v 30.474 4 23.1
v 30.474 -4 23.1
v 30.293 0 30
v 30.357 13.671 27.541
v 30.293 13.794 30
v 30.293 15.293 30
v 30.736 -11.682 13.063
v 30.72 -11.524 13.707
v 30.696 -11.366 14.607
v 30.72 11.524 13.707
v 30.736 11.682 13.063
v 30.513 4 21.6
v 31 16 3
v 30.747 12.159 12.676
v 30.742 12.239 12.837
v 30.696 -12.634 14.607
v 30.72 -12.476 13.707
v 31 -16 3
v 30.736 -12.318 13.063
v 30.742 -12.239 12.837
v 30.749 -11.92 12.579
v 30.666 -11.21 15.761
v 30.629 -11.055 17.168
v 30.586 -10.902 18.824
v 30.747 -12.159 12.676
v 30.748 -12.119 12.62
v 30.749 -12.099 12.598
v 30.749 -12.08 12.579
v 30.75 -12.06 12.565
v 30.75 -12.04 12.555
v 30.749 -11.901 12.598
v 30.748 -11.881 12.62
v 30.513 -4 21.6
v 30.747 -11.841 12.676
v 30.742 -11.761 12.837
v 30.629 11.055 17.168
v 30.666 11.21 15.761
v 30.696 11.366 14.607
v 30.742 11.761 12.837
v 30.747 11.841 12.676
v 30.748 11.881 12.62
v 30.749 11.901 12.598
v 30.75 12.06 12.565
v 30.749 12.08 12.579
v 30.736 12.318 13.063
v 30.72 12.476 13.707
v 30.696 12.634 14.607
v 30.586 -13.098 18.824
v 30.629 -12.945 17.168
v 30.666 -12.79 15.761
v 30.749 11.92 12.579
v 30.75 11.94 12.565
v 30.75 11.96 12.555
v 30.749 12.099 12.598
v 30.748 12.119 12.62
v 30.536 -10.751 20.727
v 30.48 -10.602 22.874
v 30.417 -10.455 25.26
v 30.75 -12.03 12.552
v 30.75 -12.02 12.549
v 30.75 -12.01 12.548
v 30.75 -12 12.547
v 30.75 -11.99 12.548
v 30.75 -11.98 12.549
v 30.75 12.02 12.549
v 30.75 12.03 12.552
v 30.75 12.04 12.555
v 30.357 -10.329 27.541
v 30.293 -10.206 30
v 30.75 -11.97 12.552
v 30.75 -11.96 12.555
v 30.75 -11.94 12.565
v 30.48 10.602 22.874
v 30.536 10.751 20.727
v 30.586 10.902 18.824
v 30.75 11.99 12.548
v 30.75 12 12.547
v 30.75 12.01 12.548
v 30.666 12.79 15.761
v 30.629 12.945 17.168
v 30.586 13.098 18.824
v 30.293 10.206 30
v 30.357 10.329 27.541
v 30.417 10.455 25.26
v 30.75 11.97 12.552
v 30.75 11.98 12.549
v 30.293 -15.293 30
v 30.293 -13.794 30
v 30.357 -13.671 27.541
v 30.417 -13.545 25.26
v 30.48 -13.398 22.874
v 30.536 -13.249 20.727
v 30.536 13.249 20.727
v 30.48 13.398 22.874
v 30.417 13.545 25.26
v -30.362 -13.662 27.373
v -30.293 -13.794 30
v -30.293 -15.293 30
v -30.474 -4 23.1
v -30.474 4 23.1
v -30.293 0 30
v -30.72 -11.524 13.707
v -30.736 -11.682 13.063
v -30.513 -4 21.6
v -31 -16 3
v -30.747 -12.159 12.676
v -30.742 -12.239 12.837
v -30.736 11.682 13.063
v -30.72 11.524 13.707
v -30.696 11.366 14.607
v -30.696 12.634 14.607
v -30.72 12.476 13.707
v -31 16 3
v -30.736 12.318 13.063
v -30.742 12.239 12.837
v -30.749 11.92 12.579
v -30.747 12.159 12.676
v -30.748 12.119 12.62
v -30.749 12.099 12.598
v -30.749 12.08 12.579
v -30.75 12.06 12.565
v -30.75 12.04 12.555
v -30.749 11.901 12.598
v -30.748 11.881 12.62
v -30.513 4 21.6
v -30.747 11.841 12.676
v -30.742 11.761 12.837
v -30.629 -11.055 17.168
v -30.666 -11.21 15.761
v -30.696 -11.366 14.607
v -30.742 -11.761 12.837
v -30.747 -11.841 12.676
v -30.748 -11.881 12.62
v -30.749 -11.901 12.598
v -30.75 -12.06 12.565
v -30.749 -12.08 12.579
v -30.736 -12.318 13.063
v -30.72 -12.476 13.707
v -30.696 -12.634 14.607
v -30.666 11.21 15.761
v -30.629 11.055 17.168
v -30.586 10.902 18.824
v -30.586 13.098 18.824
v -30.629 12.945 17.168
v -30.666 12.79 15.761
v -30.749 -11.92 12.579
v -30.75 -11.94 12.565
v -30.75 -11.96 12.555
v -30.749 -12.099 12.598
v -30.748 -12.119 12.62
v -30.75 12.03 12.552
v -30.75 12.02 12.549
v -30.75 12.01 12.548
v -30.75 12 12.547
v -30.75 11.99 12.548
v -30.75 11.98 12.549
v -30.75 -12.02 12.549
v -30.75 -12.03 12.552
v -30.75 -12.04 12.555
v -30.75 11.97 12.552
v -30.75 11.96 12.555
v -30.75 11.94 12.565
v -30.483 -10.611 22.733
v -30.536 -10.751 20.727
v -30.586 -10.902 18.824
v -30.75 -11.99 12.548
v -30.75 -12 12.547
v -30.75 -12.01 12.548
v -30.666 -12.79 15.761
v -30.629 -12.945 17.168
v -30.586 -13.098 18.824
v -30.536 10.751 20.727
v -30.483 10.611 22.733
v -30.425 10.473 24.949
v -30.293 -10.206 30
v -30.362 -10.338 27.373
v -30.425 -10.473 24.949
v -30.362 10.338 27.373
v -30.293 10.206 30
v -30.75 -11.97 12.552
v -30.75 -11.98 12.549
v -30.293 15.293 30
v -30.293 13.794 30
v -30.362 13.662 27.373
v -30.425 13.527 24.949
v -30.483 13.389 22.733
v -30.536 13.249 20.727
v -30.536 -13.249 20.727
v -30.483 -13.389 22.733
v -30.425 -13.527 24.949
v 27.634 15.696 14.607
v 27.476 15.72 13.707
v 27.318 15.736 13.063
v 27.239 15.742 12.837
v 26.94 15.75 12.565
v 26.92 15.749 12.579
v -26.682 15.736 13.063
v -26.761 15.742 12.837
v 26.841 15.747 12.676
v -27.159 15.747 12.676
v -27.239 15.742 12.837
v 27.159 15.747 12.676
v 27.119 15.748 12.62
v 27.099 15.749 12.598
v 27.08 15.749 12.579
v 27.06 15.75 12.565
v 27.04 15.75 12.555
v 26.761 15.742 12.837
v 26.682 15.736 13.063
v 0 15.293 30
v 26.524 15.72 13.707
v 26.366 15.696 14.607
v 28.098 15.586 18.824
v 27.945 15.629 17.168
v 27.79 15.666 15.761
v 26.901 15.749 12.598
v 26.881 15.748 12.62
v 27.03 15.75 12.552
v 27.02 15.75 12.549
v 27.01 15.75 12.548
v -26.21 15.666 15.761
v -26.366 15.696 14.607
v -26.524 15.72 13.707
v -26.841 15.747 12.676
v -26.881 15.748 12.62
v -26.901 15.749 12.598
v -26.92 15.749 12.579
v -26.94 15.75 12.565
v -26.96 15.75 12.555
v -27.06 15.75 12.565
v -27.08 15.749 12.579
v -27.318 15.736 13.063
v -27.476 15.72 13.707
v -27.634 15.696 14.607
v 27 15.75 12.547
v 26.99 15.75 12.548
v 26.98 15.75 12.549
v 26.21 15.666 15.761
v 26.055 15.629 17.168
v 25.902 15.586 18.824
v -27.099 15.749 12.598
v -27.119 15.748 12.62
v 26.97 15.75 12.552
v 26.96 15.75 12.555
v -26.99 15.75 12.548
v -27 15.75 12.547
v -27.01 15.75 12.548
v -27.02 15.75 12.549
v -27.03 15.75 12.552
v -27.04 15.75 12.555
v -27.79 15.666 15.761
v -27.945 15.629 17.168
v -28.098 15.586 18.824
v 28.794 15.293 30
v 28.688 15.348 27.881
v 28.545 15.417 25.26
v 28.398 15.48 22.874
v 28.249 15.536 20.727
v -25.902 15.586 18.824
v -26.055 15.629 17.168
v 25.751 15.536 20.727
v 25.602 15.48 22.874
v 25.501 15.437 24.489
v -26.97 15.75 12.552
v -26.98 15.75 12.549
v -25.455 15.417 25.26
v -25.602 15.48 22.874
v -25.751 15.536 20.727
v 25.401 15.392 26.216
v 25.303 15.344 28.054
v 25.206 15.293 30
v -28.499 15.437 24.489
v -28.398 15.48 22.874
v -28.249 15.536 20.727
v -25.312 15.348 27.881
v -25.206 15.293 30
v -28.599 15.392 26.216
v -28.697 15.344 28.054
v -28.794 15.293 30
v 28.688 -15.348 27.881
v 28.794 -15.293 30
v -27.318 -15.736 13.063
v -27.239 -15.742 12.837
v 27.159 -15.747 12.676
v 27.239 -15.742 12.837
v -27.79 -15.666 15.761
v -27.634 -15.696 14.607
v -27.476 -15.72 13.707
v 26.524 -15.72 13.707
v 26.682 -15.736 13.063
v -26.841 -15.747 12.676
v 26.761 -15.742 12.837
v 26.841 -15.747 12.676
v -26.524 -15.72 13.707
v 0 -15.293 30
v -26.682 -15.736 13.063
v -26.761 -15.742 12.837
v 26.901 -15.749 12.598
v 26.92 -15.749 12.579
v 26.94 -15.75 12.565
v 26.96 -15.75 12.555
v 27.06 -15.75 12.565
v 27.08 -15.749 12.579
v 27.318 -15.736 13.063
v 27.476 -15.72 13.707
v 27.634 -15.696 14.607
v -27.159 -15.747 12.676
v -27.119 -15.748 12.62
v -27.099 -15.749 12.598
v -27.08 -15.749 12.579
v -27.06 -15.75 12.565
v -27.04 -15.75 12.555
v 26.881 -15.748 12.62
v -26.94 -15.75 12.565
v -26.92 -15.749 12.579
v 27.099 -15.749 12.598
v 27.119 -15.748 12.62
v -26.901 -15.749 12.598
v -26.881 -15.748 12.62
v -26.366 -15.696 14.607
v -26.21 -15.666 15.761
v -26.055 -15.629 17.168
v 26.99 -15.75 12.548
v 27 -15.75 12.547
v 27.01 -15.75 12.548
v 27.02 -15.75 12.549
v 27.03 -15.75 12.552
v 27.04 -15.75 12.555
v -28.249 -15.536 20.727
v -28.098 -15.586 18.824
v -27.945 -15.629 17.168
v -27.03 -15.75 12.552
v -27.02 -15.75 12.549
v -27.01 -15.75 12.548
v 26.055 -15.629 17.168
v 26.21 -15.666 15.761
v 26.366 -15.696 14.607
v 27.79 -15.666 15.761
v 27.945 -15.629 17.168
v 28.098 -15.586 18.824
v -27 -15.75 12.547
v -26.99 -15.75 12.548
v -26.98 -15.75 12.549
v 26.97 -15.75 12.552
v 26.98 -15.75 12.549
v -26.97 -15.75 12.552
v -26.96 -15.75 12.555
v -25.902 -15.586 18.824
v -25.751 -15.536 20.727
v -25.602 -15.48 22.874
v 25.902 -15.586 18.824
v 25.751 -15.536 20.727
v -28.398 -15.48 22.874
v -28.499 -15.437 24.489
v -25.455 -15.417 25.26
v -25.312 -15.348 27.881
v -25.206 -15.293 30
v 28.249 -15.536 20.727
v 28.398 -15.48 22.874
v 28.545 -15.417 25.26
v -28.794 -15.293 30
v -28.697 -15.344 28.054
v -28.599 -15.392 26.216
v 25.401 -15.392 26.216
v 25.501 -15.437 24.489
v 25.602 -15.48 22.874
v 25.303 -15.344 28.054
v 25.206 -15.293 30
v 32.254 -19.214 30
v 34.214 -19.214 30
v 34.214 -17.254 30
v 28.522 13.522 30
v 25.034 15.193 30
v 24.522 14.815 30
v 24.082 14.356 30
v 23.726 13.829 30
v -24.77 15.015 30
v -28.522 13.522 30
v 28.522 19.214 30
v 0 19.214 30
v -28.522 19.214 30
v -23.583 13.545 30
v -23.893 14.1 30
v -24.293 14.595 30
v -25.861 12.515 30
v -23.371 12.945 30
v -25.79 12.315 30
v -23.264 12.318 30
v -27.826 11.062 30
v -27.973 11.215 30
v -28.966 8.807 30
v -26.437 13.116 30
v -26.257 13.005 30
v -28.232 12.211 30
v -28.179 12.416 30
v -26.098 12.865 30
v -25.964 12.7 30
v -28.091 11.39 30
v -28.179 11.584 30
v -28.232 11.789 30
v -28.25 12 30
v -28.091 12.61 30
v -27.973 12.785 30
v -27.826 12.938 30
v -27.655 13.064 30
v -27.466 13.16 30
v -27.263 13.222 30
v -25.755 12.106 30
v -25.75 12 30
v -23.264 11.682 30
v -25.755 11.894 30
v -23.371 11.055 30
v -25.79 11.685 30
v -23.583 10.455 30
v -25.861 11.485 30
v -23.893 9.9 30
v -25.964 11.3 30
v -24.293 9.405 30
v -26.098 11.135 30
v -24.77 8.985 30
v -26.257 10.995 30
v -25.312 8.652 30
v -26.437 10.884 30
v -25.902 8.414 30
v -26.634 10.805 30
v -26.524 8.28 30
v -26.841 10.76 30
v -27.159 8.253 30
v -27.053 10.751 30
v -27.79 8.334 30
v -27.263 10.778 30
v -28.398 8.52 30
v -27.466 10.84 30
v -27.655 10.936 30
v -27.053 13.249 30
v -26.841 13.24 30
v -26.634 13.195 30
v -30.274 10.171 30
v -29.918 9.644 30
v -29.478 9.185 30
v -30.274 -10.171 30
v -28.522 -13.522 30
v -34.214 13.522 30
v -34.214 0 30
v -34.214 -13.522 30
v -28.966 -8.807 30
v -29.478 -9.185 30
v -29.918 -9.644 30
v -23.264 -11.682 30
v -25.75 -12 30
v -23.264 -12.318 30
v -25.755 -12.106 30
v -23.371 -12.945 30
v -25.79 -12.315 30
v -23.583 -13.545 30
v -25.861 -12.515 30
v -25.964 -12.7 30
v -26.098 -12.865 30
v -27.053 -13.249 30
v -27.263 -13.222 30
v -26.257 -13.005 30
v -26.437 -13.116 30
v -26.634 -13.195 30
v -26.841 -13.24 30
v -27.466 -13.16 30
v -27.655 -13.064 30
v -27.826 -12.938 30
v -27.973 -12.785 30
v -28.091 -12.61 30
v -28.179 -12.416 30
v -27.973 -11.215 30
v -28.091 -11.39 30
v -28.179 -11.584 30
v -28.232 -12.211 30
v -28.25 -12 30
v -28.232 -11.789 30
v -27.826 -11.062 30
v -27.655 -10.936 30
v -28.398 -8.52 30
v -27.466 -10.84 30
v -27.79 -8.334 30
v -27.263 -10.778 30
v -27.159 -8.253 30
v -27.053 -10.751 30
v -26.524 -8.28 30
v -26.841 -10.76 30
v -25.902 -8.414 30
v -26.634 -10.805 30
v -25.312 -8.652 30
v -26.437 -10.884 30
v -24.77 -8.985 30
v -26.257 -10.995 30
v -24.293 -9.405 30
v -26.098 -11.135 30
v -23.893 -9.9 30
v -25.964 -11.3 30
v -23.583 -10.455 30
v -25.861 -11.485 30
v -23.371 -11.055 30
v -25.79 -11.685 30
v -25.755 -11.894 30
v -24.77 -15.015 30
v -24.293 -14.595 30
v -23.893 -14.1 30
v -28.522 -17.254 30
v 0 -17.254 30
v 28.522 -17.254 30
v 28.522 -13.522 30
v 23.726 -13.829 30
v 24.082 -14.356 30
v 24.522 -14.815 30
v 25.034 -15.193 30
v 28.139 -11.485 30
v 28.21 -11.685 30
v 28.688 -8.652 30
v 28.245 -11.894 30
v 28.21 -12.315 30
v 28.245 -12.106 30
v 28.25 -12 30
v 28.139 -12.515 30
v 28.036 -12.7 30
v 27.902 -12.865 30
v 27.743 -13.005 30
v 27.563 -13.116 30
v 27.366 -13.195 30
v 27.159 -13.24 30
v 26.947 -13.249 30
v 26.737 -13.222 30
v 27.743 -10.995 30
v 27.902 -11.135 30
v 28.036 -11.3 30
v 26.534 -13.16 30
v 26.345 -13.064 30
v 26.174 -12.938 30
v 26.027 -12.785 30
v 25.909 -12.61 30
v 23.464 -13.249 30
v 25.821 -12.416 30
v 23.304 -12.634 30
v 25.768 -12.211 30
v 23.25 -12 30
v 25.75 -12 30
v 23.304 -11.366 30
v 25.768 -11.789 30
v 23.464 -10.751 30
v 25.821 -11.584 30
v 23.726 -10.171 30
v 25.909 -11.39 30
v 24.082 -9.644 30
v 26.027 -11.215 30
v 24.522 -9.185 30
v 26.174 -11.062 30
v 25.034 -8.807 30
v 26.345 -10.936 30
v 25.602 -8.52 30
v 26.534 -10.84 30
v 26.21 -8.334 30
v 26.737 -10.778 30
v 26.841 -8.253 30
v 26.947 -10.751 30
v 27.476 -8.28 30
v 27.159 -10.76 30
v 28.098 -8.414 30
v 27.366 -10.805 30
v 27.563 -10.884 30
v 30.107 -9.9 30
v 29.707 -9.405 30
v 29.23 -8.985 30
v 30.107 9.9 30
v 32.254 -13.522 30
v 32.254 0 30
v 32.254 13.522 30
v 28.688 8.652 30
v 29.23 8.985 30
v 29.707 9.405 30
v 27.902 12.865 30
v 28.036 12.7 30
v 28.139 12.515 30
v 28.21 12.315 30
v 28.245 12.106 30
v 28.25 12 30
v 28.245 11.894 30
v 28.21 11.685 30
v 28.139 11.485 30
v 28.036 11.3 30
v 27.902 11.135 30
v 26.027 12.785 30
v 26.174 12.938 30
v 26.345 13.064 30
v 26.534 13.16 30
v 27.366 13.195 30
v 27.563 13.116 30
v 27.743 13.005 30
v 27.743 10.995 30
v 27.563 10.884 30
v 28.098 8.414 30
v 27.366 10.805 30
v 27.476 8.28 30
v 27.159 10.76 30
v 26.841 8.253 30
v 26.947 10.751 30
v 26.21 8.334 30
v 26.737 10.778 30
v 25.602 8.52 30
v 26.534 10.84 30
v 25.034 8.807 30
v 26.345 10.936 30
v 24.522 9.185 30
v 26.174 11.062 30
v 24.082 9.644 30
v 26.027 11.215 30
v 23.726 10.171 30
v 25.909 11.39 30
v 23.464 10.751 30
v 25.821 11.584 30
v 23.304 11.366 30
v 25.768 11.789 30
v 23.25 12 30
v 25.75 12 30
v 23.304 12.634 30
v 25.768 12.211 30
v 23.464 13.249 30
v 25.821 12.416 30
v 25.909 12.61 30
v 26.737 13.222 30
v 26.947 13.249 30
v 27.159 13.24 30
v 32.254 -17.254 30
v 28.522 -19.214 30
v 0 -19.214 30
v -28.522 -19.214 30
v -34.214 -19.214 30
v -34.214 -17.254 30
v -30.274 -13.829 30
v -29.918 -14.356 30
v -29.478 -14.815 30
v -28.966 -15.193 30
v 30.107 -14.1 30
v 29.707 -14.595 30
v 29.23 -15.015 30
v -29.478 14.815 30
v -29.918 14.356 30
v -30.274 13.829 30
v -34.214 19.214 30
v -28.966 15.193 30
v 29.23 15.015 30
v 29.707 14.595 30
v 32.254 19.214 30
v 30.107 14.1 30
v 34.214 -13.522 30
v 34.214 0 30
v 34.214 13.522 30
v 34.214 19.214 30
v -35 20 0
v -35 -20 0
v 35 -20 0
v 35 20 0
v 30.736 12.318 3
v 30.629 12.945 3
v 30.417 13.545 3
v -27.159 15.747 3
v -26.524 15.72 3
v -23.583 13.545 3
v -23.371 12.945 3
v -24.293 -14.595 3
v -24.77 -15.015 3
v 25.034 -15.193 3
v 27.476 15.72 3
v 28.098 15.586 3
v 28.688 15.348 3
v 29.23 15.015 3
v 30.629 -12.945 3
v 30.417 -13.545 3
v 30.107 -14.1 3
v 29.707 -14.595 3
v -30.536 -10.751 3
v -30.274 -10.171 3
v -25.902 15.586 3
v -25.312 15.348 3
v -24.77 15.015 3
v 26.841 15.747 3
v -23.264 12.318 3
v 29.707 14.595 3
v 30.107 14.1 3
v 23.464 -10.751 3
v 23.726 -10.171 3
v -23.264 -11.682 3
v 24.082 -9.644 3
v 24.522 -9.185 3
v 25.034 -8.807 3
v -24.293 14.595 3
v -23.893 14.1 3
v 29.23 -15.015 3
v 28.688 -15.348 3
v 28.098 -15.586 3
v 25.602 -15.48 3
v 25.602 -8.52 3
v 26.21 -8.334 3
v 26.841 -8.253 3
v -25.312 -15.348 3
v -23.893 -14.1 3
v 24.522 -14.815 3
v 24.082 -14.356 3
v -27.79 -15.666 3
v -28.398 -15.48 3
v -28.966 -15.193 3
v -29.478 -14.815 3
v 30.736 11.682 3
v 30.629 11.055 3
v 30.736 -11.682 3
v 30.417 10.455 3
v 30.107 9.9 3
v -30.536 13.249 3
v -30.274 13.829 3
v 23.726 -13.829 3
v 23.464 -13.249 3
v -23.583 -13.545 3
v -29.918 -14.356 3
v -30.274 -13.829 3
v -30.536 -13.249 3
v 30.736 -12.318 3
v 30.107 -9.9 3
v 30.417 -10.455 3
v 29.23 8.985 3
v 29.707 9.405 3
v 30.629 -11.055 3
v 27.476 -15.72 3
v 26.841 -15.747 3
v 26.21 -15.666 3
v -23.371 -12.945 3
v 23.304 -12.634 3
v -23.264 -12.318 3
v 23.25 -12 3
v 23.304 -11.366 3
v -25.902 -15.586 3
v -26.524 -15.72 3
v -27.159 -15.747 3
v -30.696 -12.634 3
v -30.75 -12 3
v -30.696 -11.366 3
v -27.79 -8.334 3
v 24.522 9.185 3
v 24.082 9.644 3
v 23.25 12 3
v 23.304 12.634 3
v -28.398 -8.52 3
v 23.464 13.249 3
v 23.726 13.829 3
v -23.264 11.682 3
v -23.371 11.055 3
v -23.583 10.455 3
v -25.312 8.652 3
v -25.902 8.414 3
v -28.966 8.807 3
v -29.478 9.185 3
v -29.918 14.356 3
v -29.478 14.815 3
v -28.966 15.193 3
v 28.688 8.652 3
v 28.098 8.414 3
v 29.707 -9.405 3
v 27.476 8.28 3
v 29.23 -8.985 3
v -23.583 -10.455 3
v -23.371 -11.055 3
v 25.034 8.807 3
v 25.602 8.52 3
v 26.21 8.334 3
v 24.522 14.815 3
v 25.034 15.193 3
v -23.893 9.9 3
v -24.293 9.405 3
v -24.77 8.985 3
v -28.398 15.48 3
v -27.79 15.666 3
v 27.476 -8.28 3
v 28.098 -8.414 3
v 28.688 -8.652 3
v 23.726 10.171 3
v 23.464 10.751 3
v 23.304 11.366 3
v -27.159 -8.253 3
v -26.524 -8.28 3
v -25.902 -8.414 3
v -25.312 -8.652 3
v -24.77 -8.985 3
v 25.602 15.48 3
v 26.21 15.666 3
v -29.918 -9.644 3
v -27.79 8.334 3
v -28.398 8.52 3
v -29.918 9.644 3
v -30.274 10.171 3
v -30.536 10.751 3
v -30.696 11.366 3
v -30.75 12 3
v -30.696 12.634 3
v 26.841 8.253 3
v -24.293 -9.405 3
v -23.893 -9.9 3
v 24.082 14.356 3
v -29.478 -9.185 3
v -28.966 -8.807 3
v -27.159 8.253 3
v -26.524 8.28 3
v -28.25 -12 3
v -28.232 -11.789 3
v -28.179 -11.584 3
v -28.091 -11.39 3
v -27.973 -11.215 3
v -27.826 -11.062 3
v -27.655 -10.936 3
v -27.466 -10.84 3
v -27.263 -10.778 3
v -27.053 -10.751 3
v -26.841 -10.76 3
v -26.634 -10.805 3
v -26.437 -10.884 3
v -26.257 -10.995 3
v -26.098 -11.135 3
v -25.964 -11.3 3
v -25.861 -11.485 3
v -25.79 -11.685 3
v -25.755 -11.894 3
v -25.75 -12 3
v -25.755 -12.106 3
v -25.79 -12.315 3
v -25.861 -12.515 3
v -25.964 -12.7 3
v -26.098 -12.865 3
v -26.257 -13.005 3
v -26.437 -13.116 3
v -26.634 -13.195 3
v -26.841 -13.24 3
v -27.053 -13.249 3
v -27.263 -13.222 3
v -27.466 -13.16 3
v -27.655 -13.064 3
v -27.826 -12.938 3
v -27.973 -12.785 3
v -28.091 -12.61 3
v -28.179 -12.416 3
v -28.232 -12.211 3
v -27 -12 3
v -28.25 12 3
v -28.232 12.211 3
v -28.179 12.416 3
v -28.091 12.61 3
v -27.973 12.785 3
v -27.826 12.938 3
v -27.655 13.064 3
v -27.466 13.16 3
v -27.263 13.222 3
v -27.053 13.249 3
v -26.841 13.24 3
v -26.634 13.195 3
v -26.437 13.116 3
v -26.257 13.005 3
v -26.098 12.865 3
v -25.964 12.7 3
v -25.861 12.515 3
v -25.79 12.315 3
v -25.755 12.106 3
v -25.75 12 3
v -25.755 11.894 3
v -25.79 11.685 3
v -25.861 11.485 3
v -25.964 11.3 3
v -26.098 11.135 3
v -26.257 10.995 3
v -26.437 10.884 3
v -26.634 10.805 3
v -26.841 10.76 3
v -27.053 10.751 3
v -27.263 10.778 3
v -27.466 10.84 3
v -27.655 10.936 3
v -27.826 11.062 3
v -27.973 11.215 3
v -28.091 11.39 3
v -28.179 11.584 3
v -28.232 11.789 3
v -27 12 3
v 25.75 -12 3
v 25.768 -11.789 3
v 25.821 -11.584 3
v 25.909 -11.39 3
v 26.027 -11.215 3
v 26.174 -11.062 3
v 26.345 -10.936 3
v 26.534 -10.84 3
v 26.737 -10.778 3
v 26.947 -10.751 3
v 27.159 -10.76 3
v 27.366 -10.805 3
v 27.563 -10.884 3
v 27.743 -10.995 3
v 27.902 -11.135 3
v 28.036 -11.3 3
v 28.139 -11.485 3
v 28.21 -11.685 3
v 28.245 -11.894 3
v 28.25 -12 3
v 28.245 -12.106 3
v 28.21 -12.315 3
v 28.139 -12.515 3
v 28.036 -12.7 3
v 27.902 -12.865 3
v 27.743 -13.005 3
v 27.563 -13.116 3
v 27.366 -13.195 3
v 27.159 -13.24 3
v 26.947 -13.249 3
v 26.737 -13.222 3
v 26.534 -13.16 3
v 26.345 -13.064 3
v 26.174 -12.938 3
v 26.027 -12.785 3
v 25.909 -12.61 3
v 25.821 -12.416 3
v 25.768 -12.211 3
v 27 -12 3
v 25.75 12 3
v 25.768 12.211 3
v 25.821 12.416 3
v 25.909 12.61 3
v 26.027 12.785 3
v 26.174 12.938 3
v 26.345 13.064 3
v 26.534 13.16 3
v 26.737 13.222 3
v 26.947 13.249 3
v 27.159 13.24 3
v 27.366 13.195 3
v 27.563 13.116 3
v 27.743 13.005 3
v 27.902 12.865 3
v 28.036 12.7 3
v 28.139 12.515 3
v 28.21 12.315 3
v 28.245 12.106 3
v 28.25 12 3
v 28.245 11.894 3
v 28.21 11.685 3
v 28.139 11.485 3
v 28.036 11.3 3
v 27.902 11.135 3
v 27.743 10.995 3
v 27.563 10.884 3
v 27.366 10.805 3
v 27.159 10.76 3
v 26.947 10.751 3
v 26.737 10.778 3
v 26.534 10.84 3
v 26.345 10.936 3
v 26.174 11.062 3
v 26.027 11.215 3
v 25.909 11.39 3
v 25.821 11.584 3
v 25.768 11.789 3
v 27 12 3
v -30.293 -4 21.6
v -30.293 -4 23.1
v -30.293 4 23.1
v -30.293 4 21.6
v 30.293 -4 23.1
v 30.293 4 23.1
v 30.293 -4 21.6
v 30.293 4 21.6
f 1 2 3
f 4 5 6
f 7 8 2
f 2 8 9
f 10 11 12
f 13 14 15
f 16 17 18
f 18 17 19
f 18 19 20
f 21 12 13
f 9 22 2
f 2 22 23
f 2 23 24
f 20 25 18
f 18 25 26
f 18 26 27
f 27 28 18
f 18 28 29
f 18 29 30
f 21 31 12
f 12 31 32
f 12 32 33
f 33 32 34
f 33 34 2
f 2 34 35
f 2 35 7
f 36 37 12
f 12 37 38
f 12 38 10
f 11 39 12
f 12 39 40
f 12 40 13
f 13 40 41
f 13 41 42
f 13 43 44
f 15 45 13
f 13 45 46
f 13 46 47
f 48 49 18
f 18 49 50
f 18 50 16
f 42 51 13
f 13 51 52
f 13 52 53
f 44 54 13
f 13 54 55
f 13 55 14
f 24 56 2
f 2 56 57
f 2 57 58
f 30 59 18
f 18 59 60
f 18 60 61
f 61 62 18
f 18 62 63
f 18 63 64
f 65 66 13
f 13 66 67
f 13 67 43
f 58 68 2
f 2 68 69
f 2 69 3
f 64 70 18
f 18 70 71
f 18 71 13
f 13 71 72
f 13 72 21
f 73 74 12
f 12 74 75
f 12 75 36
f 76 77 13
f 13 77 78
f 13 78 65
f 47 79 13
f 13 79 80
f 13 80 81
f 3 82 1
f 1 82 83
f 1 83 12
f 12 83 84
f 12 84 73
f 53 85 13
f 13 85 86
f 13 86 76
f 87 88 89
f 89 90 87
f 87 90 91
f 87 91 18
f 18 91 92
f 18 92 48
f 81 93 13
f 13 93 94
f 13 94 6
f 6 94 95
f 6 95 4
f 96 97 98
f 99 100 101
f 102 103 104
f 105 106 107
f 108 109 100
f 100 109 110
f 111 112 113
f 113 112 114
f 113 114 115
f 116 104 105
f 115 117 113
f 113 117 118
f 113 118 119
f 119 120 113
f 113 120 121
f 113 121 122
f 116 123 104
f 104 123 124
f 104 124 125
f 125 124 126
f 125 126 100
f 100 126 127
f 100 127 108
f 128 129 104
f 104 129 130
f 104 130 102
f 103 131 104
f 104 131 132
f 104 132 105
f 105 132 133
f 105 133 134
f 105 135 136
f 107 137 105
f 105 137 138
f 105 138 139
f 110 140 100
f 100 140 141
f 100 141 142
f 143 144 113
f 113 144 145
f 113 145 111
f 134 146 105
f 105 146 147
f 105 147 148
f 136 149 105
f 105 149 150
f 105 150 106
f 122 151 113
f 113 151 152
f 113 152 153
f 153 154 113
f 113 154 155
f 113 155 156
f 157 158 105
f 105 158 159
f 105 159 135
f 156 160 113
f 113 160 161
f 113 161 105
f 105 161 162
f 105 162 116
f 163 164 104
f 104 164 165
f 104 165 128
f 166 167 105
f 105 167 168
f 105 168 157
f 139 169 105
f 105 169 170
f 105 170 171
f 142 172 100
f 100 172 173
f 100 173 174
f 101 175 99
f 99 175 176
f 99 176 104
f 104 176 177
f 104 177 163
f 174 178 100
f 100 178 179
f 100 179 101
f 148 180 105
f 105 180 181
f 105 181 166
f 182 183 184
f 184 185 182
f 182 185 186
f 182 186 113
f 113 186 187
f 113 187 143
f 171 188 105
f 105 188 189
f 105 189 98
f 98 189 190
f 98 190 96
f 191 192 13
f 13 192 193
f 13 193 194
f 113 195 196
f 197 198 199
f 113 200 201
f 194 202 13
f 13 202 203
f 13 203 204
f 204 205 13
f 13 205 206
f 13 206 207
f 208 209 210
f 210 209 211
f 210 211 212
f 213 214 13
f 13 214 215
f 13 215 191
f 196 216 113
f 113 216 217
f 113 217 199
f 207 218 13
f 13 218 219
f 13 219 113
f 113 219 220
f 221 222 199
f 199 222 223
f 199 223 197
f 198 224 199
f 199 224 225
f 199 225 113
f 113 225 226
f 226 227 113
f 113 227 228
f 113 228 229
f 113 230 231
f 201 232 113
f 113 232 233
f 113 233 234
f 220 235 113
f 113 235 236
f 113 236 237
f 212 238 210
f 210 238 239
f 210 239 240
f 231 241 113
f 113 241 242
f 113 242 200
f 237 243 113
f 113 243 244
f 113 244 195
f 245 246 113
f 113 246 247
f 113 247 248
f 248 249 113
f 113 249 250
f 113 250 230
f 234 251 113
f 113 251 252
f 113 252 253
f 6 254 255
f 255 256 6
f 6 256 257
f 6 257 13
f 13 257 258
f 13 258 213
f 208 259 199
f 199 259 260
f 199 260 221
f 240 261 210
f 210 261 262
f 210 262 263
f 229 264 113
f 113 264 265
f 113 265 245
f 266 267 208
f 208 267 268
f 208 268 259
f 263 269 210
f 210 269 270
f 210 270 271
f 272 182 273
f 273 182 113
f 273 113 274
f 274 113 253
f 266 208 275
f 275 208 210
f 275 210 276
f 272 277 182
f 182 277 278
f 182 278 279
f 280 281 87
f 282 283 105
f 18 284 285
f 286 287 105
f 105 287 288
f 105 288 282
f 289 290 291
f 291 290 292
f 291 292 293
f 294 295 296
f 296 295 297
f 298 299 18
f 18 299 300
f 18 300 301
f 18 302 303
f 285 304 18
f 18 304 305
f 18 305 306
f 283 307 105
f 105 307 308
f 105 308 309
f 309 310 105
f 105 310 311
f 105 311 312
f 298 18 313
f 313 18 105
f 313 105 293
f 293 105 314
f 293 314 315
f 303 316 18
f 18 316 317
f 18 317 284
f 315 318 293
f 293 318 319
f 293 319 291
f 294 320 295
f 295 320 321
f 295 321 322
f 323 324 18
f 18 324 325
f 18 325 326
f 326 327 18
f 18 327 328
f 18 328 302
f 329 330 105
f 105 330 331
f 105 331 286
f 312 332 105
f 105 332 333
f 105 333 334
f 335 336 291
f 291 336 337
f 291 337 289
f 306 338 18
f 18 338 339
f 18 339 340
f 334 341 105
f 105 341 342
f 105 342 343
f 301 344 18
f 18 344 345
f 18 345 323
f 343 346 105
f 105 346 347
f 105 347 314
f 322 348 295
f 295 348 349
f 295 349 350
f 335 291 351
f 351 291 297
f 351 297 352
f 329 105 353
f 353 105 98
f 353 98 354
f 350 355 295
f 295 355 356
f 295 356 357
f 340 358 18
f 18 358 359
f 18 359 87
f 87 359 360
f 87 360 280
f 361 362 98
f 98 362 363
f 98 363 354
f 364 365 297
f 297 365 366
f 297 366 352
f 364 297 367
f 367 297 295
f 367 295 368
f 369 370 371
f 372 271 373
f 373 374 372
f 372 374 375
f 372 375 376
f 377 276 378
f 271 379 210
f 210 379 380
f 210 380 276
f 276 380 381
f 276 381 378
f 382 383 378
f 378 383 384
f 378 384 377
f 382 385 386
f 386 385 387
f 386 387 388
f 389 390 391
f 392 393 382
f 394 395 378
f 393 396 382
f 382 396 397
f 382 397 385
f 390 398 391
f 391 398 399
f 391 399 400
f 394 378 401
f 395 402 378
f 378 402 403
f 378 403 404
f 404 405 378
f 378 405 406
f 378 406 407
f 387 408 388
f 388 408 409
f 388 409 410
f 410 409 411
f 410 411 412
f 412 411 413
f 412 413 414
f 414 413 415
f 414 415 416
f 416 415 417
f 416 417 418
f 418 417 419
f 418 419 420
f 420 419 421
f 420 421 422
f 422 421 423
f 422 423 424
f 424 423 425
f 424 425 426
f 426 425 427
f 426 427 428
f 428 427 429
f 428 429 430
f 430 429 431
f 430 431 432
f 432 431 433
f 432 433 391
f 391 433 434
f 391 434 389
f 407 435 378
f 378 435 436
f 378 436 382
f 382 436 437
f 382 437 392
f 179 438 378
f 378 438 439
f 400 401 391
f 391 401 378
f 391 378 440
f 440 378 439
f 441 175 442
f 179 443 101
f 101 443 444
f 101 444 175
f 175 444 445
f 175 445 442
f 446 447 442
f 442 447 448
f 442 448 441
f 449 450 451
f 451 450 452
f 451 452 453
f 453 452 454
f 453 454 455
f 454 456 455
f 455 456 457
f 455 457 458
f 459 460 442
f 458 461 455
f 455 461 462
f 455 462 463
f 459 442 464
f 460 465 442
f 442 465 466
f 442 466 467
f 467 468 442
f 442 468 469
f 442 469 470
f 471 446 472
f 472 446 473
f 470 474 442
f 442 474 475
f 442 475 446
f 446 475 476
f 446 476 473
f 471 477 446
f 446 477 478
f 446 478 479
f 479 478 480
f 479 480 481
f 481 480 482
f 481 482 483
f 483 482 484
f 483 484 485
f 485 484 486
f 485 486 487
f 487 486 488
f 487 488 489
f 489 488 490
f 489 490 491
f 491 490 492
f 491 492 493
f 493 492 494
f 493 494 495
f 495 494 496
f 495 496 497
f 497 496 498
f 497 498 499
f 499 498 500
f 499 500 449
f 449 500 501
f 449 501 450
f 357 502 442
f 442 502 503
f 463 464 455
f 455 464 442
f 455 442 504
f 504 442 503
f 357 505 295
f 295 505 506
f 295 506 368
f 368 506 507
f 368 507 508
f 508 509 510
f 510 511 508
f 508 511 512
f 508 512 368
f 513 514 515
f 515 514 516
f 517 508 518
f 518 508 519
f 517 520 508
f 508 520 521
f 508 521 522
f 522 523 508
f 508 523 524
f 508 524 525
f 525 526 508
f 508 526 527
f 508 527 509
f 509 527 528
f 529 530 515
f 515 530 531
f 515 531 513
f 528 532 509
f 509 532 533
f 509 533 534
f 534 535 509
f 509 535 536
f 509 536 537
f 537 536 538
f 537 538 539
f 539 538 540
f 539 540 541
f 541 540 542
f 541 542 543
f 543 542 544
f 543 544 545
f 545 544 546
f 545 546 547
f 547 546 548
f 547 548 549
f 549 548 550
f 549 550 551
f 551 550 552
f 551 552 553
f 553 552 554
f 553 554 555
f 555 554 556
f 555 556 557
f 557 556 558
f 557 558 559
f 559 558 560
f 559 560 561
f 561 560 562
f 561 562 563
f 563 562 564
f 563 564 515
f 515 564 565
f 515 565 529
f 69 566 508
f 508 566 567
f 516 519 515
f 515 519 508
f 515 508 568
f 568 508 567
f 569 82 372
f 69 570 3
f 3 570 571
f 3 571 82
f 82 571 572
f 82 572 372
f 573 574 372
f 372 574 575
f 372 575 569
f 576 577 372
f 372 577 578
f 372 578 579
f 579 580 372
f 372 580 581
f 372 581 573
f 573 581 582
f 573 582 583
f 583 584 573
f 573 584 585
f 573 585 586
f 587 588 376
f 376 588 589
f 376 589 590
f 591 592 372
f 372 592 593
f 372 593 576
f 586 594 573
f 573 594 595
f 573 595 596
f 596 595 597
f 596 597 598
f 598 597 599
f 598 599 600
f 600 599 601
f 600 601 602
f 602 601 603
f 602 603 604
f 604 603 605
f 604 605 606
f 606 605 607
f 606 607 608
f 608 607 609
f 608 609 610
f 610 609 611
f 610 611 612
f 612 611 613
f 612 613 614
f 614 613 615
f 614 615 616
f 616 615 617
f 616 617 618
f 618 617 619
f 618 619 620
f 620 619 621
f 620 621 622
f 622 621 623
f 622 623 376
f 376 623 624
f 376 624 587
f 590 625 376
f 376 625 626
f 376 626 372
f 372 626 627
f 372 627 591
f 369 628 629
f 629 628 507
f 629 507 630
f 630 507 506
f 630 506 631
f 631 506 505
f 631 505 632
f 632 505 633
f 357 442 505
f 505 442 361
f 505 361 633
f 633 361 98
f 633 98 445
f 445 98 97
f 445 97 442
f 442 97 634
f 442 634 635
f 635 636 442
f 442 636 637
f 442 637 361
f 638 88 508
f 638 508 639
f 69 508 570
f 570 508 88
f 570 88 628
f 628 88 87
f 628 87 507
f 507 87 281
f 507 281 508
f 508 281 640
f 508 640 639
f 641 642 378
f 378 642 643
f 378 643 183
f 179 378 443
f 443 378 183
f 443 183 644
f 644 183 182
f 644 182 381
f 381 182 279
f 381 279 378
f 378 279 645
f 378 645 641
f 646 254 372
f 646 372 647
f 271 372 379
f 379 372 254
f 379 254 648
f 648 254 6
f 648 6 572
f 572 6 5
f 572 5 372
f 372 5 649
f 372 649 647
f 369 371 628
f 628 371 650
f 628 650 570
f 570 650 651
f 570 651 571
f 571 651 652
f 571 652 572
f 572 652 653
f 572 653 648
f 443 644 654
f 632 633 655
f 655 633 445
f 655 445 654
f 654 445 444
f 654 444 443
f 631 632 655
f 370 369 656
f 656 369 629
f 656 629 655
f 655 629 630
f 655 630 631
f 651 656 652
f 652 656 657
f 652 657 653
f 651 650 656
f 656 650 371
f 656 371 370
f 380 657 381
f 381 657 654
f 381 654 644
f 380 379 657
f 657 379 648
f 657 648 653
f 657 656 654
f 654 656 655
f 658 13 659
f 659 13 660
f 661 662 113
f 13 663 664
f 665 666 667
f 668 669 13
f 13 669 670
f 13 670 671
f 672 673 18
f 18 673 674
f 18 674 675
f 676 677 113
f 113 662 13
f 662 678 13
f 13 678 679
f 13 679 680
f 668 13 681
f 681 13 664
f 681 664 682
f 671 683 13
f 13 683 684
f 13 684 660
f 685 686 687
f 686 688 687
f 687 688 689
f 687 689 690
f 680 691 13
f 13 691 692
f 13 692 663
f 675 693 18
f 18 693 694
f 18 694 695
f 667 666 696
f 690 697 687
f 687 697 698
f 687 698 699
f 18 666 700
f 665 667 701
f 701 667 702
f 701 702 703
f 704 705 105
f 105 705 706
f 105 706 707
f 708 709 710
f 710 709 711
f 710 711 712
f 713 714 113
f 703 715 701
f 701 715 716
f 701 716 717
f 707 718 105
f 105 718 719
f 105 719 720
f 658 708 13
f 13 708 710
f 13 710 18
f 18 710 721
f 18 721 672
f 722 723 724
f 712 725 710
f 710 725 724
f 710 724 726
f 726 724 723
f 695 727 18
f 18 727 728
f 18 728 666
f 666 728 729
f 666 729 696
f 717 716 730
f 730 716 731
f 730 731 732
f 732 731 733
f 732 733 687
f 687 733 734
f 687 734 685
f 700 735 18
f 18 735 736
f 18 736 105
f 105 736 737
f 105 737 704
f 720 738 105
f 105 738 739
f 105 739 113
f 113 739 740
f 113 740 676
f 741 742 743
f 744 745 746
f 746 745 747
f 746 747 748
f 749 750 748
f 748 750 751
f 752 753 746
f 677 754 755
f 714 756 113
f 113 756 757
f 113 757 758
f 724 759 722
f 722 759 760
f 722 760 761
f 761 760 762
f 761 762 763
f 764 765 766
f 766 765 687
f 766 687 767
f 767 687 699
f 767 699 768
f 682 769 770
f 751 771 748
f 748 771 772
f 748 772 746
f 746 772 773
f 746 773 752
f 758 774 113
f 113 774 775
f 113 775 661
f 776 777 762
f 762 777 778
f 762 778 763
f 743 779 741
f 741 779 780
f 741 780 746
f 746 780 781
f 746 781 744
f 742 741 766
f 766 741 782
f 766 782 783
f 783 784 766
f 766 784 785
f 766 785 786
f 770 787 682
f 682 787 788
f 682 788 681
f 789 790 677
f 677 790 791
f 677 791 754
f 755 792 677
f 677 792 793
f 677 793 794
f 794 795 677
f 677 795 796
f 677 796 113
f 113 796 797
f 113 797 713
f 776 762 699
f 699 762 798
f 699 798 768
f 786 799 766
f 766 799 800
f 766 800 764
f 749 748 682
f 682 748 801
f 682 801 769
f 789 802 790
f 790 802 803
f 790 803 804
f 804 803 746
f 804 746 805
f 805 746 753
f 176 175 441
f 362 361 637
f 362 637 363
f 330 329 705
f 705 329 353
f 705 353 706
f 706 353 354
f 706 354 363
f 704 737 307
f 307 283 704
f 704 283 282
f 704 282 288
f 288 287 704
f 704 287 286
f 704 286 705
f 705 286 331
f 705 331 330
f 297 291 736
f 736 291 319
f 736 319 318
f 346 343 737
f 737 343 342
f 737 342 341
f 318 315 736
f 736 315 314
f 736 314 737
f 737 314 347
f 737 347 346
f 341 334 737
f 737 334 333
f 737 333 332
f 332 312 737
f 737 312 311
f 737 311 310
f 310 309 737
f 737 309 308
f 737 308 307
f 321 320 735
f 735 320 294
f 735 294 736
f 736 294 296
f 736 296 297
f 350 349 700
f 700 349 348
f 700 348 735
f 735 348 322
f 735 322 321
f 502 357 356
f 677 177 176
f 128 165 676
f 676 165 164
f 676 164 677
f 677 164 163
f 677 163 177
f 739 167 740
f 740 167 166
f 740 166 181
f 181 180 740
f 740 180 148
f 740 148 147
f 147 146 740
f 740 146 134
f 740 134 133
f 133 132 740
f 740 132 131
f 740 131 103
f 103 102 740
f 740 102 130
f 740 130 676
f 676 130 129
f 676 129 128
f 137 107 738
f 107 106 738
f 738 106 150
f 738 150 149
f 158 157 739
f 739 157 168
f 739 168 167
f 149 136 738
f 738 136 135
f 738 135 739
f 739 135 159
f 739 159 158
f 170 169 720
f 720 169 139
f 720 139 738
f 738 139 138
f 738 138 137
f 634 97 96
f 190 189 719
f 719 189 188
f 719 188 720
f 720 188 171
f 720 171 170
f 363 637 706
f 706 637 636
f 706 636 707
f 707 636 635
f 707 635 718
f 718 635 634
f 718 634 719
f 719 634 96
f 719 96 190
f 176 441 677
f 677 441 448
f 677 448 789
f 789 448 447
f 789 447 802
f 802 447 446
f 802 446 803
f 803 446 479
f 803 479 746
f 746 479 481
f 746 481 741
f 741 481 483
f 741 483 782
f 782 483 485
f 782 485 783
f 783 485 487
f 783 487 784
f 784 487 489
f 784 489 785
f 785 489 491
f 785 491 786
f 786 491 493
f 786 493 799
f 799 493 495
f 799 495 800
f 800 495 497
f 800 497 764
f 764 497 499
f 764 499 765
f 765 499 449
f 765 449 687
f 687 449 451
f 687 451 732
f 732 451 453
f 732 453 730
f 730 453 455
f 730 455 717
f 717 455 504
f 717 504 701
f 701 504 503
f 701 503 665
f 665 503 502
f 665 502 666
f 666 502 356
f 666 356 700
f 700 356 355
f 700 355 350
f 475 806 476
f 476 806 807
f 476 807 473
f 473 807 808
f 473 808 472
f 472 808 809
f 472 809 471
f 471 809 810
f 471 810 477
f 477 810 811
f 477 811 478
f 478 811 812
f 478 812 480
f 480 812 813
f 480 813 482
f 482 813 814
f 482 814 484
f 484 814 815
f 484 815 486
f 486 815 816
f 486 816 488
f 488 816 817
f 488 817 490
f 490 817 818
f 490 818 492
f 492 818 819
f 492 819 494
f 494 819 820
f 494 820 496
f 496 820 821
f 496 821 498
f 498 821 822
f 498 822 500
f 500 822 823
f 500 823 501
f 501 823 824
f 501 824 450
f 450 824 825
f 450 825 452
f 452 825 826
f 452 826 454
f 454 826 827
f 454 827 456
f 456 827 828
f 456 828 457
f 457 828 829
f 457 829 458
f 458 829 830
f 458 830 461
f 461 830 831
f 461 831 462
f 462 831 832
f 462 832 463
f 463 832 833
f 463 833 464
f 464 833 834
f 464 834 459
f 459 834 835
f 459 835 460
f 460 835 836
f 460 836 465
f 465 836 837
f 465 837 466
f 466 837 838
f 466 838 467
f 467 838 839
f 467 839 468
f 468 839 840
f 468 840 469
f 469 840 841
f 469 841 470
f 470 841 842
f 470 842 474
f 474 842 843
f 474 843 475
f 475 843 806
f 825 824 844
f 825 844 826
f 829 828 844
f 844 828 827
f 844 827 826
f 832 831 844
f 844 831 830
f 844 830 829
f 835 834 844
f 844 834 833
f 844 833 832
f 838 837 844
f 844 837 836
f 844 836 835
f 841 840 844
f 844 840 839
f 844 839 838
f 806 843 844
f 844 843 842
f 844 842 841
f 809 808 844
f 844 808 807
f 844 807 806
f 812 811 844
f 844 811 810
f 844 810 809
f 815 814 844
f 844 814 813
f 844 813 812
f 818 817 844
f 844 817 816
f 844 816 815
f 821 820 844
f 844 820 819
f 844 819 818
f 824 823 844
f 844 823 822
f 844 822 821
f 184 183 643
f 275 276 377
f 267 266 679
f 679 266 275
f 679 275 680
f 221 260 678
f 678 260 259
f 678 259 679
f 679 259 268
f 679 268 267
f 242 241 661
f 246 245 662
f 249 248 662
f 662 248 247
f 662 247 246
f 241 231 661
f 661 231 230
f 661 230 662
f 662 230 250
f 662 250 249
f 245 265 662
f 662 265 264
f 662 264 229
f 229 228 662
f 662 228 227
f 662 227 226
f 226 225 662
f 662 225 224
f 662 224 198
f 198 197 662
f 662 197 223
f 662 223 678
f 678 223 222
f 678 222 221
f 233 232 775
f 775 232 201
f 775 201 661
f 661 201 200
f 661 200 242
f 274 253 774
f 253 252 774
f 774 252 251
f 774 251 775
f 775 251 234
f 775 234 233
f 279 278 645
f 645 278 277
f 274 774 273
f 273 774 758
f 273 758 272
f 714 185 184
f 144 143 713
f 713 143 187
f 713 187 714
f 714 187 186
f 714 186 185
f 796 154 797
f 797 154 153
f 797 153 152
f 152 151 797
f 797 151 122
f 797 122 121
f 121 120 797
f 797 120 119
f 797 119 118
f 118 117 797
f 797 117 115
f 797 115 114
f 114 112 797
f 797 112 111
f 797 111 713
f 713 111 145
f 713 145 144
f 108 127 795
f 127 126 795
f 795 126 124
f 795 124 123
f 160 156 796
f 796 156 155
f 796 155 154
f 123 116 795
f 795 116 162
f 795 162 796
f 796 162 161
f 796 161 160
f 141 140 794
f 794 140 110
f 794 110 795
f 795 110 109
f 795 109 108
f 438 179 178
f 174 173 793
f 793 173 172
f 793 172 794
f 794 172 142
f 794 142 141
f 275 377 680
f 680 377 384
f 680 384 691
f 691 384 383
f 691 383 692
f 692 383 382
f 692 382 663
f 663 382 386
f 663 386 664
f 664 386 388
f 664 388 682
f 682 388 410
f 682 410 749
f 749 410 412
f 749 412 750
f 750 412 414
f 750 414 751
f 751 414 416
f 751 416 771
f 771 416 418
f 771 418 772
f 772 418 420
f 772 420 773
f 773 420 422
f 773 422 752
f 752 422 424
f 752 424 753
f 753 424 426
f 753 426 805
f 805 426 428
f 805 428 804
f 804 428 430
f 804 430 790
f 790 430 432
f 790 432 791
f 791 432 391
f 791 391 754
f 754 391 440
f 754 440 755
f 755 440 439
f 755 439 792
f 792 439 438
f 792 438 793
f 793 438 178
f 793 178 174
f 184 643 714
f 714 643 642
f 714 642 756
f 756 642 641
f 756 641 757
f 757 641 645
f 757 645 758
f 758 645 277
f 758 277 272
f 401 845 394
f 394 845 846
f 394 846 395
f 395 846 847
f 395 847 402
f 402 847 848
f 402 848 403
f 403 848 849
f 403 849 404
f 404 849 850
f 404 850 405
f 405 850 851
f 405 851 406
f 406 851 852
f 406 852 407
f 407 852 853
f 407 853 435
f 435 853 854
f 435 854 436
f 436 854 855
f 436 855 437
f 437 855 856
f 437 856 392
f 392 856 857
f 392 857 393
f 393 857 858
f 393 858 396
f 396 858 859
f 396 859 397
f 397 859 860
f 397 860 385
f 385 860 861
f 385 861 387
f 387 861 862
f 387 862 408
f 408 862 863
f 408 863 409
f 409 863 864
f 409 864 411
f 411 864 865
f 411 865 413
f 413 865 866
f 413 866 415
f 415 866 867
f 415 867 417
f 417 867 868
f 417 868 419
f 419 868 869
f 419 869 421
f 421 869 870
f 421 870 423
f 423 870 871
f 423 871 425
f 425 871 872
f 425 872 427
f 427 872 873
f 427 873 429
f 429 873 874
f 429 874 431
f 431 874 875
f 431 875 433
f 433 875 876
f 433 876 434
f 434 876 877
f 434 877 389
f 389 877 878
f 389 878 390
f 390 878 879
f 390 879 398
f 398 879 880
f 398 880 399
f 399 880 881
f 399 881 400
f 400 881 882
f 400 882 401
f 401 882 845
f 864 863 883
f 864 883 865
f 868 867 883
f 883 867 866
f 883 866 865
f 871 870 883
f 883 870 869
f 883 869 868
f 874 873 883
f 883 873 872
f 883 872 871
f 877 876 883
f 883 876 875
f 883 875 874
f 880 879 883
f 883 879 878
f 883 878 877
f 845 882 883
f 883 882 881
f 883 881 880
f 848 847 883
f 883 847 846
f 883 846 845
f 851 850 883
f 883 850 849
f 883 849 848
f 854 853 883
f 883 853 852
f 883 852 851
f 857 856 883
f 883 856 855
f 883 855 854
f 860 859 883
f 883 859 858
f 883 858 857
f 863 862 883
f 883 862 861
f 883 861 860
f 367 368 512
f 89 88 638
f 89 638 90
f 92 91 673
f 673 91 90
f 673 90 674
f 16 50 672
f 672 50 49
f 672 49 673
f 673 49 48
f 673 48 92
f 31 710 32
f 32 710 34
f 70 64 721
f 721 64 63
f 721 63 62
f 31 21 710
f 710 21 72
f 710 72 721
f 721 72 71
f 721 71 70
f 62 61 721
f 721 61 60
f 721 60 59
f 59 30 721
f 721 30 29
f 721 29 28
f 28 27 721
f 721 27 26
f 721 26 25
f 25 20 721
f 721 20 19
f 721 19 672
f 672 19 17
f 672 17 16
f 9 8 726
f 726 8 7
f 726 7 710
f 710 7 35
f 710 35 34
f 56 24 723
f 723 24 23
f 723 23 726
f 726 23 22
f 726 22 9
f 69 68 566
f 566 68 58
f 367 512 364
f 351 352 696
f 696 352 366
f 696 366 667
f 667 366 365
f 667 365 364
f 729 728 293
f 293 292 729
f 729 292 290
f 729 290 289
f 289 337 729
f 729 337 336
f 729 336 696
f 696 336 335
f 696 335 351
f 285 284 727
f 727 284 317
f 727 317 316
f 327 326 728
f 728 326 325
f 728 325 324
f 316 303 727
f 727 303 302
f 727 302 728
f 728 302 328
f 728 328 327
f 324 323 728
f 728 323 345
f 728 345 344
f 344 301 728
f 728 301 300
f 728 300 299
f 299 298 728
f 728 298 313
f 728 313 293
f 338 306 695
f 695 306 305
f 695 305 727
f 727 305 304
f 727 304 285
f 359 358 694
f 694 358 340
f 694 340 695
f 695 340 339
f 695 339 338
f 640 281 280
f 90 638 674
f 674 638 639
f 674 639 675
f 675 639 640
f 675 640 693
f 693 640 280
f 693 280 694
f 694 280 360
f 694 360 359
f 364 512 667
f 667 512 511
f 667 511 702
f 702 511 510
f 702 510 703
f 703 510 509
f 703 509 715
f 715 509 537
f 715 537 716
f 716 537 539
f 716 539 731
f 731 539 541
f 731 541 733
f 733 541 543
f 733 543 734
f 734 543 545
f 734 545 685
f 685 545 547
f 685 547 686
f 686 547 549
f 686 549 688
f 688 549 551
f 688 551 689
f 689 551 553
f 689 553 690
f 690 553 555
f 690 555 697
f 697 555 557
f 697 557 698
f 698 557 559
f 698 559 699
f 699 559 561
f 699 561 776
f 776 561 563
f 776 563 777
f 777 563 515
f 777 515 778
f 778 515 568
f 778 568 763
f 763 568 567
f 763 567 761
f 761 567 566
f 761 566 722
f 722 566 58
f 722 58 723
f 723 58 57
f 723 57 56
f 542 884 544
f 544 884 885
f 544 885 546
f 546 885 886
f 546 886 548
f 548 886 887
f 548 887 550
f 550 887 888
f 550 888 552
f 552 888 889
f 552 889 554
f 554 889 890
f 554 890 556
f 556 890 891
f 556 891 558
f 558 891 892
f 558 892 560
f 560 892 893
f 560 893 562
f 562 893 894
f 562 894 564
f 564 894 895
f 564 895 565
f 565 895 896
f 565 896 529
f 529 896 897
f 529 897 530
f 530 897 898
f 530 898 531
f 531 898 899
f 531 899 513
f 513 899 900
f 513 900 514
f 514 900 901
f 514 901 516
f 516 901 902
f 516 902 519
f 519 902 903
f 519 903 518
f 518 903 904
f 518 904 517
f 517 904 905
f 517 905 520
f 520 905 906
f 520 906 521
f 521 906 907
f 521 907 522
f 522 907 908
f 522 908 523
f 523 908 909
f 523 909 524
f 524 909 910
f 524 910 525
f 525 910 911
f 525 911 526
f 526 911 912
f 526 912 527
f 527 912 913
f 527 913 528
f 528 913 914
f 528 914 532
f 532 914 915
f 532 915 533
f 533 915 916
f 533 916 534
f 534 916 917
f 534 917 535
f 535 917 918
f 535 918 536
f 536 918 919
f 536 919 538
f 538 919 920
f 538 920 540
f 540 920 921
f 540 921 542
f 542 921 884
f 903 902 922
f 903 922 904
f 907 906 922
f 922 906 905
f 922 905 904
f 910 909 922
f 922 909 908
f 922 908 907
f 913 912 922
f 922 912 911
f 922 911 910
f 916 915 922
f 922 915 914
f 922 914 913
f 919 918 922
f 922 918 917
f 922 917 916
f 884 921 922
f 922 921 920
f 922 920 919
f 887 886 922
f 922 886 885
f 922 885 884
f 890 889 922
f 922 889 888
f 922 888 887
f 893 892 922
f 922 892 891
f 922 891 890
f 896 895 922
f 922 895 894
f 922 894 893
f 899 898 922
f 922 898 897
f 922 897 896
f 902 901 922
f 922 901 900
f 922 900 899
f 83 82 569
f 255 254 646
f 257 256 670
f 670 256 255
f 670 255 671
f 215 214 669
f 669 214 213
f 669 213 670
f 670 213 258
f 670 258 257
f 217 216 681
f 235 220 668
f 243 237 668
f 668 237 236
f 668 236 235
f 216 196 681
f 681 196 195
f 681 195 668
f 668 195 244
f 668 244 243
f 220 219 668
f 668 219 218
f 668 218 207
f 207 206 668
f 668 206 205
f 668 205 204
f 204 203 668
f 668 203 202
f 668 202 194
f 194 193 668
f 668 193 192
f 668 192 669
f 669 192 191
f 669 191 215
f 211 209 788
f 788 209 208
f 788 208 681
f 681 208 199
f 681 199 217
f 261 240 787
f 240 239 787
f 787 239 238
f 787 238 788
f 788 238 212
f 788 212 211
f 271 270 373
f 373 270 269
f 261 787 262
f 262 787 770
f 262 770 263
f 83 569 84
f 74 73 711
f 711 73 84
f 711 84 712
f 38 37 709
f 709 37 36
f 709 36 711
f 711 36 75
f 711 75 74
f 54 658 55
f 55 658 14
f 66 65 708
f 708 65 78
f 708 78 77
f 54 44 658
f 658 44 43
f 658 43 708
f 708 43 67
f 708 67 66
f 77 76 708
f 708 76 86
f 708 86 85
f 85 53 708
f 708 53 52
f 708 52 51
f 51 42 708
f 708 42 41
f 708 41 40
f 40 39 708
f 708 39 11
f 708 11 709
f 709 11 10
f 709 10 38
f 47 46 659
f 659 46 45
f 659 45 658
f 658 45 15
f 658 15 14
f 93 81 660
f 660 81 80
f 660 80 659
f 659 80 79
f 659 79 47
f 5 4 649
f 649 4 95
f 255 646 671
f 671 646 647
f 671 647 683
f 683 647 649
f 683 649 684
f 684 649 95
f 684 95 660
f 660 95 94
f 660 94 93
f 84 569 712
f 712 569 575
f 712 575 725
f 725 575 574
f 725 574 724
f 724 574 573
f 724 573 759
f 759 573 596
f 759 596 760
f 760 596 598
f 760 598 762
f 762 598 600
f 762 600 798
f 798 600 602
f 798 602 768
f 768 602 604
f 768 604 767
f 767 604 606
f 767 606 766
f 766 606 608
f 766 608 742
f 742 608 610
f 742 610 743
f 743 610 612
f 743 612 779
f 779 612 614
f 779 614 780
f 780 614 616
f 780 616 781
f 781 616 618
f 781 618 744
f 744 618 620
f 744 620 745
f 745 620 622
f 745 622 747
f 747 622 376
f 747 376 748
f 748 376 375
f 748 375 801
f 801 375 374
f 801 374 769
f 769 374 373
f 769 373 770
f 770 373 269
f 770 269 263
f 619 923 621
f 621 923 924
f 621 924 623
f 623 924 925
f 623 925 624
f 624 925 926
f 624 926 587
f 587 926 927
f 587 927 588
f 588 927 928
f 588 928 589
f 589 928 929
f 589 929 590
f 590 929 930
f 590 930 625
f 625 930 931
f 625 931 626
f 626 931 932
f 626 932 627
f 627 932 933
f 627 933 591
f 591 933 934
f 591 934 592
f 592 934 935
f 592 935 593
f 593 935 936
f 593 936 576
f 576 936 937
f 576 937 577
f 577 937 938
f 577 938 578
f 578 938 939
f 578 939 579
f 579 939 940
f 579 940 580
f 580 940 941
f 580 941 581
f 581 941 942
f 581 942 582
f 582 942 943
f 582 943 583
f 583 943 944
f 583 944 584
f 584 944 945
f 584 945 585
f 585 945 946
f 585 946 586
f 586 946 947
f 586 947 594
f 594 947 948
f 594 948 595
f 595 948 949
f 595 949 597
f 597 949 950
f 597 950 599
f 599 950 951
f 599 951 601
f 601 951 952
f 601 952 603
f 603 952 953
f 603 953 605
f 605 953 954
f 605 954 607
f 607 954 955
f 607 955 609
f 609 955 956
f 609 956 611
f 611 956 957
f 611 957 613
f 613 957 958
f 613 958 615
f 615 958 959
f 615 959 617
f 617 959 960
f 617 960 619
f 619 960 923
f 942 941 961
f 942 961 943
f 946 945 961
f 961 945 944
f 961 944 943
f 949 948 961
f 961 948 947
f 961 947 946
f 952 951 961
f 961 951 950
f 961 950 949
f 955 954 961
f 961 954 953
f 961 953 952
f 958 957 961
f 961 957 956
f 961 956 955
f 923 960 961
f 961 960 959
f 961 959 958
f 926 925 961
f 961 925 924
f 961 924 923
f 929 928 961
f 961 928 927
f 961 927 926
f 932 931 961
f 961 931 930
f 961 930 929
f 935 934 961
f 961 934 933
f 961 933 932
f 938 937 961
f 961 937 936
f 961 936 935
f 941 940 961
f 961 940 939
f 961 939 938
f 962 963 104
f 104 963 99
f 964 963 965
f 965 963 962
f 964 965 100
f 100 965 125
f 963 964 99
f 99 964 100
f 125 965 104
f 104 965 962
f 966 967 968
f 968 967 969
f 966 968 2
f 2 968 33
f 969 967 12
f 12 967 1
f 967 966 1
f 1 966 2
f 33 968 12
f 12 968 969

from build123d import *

# Parameters (mm, degrees)
SKETCH2_W                 = 70
SKETCH2_H                 = 40
DRAFTED_OUTER_SHELL_DEPTH = 30
DRAFTED_OUTER_SHELL_TAPER = 1.5
DRAFTED_CAVITY_START      = 3
SKETCH3_W                 = 62
SKETCH3_H                 = 32
DRAFTED_CAVITY_DEPTH      = 27
DRAFTED_CAVITY_TAPER      = 1.5
SCREW_BOSS_START          = 3
SKETCH4_R                 = 3.75
SCREW_BOSS_DEPTH          = 27
SCREW_BOSS_BORE_START     = 3
SKETCH5_R                 = 1.25
SCREW_BOSS_BORE_DEPTH     = 27
BOSS_EXTRUDE3_START       = 3
SKETCH6_R                 = 3.75
BOSS_EXTRUDE3_DEPTH       = 27
CUT_EXTRUDE3_START        = 3
SKETCH7_R                 = 1.25
CUT_EXTRUDE3_DEPTH        = 27
BOSS_EXTRUDE4_START       = 3
SKETCH8_R                 = 3.75
BOSS_EXTRUDE4_DEPTH       = 27
CUT_EXTRUDE4_START        = 3
SKETCH9_R                 = 1.25
CUT_EXTRUDE4_DEPTH        = 27
BOSS_EXTRUDE5_START       = 3
SKETCH10_R                = 3.75
BOSS_EXTRUDE5_DEPTH       = 27
CUT_EXTRUDE5_START        = 3
SKETCH11_R                = 1.25
CUT_EXTRUDE5_DEPTH        = 27
SNAP_CATCH_LEDGE_START    = 21.6
SKETCH12_W                = 2.107019882
SKETCH12_H                = 8
SNAP_CATCH_LEDGE_DEPTH    = 1.5
BOSS_EXTRUDE7_START       = 21.6
SKETCH13_W                = 2.107019882
SKETCH13_H                = 8
BOSS_EXTRUDE7_DEPTH       = 1.5


with BuildPart() as part:
    # Sketch2 → Drafted_outer_shell (new body)
    with BuildSketch(Plane.XY):
        Rectangle(SKETCH2_W, SKETCH2_H)
    extrude(amount=DRAFTED_OUTER_SHELL_DEPTH, taper=DRAFTED_OUTER_SHELL_TAPER)

    # Sketch3 → Drafted_cavity (cut)
    with BuildSketch(Plane.XY.offset(DRAFTED_CAVITY_START)):
        Rectangle(SKETCH3_W, SKETCH3_H)
    extrude(amount=DRAFTED_CAVITY_DEPTH, taper=DRAFTED_CAVITY_TAPER, mode=Mode.SUBTRACT)

    # Sketch4 → Screw_boss (add)
    with BuildSketch(Plane.XY.offset(SCREW_BOSS_START)):
        with Locations(Location((-27, -12, 0), (0, 0, 180))):
            Circle(SKETCH4_R)
    extrude(amount=SCREW_BOSS_DEPTH)

    # Sketch5 → Screw_boss_bore (cut)
    with BuildSketch(Plane.XY.offset(SCREW_BOSS_BORE_START)):
        with Locations((-27, -12)):
            Circle(SKETCH5_R)
    extrude(amount=SCREW_BOSS_BORE_DEPTH, mode=Mode.SUBTRACT)

    # Sketch6 → Boss-Extrude3 (add)
    with BuildSketch(Plane.XY.offset(BOSS_EXTRUDE3_START)):
        with Locations(Location((-27, 12, 0), (0, 0, 180))):
            Circle(SKETCH6_R)
    extrude(amount=BOSS_EXTRUDE3_DEPTH)

    # Sketch7 → Cut-Extrude3 (cut)
    with BuildSketch(Plane.XY.offset(CUT_EXTRUDE3_START)):
        with Locations((-27, 12)):
            Circle(SKETCH7_R)
    extrude(amount=CUT_EXTRUDE3_DEPTH, mode=Mode.SUBTRACT)

    # Sketch8 → Boss-Extrude4 (add)
    with BuildSketch(Plane.XY.offset(BOSS_EXTRUDE4_START)):
        with Locations(Location((27, -12, 0), (0, 0, 180))):
            Circle(SKETCH8_R)
    extrude(amount=BOSS_EXTRUDE4_DEPTH)

    # Sketch9 → Cut-Extrude4 (cut)
    with BuildSketch(Plane.XY.offset(CUT_EXTRUDE4_START)):
        with Locations((27, -12)):
            Circle(SKETCH9_R)
    extrude(amount=CUT_EXTRUDE4_DEPTH, mode=Mode.SUBTRACT)

    # Sketch10 → Boss-Extrude5 (add)
    with BuildSketch(Plane.XY.offset(BOSS_EXTRUDE5_START)):
        with Locations(Location((27, 12, 0), (0, 0, 180))):
            Circle(SKETCH10_R)
    extrude(amount=BOSS_EXTRUDE5_DEPTH)

    # Sketch11 → Cut-Extrude5 (cut)
    with BuildSketch(Plane.XY.offset(CUT_EXTRUDE5_START)):
        with Locations((27, 12)):
            Circle(SKETCH11_R)
    extrude(amount=CUT_EXTRUDE5_DEPTH, mode=Mode.SUBTRACT)

    # Sketch12 → Snap_catch_ledge (add)
    with BuildSketch(Plane.XY.offset(SNAP_CATCH_LEDGE_START)):
        with Locations((-31.346490059, 0)):
            Rectangle(SKETCH12_W, SKETCH12_H)
    extrude(amount=SNAP_CATCH_LEDGE_DEPTH)

    # Sketch13 → Boss-Extrude7 (add)
    with BuildSketch(Plane.XY.offset(BOSS_EXTRUDE7_START)):
        with Locations((31.346490059, 0)):
            Rectangle(SKETCH13_W, SKETCH13_H)
    extrude(amount=BOSS_EXTRUDE7_DEPTH)


solid = part.part
